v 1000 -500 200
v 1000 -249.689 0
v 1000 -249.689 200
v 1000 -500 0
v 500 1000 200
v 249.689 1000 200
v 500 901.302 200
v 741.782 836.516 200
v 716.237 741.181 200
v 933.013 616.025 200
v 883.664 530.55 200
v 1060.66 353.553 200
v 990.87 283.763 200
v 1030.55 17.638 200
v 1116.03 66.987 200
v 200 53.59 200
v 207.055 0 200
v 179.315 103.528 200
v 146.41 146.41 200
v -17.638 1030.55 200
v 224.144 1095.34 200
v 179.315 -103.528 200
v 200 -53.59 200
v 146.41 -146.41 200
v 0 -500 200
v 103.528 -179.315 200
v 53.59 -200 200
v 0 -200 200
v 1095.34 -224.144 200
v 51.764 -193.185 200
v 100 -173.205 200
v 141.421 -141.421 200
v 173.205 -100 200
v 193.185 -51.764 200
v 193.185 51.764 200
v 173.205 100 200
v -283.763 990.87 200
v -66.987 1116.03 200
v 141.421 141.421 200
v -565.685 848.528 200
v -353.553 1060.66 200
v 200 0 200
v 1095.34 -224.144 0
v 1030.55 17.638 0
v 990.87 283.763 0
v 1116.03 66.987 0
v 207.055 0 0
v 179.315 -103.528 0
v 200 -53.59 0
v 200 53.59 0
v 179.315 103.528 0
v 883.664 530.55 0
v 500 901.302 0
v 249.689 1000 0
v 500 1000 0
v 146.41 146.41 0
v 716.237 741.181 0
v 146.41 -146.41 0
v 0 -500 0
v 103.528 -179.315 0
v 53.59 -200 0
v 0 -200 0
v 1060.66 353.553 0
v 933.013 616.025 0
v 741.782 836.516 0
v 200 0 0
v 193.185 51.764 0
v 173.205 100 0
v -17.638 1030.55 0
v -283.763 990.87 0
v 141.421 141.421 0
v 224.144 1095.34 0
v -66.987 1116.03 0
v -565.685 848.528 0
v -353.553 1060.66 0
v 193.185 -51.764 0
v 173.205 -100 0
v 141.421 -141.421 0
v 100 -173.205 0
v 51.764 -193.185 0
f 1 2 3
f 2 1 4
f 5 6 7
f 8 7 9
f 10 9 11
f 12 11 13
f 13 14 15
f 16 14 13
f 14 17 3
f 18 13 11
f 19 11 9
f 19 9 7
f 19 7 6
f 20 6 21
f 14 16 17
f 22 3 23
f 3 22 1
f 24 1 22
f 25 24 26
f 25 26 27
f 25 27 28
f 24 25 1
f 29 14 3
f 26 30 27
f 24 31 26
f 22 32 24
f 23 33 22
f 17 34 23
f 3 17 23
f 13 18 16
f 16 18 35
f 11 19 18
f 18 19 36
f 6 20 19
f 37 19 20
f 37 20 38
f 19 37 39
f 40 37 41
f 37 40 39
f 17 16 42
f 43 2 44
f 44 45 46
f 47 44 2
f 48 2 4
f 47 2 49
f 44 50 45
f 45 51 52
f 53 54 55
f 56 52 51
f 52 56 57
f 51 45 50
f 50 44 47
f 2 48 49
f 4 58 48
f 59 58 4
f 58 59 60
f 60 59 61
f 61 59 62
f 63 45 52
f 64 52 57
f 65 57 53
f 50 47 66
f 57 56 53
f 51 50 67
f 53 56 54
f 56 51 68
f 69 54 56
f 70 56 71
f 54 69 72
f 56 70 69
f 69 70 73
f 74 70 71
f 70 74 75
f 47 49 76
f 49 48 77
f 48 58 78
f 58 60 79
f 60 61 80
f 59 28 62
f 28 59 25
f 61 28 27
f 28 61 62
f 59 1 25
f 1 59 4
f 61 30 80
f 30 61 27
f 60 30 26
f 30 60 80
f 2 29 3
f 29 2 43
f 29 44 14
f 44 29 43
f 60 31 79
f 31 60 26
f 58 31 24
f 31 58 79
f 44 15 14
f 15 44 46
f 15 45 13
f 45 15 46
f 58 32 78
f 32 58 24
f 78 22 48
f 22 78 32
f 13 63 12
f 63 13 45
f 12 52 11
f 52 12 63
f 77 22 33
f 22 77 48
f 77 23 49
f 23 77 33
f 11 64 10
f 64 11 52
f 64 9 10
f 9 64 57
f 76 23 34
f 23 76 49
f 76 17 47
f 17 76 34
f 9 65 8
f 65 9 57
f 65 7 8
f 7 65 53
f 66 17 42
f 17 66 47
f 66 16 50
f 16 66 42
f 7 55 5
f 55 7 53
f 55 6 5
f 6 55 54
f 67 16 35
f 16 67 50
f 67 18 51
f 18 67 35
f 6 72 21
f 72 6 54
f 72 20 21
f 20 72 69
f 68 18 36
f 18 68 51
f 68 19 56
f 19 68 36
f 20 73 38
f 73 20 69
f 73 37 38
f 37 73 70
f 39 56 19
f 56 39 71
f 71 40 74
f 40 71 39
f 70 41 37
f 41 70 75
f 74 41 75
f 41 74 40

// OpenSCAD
module spiral_staircase(height, width, depth, num_steps, step_height, angle) {
  for (i = [0:num_steps - 1]) {
    rotate([0, 0, i * angle]) {
      translate([0, -width/2, 0]) {
        cube([width, depth, step_height]);
      }
    }
  }
}

spiral_staircase(height = 300, width = 1000, depth = 300, num_steps = 10, step_height = 200, angle = 15);
